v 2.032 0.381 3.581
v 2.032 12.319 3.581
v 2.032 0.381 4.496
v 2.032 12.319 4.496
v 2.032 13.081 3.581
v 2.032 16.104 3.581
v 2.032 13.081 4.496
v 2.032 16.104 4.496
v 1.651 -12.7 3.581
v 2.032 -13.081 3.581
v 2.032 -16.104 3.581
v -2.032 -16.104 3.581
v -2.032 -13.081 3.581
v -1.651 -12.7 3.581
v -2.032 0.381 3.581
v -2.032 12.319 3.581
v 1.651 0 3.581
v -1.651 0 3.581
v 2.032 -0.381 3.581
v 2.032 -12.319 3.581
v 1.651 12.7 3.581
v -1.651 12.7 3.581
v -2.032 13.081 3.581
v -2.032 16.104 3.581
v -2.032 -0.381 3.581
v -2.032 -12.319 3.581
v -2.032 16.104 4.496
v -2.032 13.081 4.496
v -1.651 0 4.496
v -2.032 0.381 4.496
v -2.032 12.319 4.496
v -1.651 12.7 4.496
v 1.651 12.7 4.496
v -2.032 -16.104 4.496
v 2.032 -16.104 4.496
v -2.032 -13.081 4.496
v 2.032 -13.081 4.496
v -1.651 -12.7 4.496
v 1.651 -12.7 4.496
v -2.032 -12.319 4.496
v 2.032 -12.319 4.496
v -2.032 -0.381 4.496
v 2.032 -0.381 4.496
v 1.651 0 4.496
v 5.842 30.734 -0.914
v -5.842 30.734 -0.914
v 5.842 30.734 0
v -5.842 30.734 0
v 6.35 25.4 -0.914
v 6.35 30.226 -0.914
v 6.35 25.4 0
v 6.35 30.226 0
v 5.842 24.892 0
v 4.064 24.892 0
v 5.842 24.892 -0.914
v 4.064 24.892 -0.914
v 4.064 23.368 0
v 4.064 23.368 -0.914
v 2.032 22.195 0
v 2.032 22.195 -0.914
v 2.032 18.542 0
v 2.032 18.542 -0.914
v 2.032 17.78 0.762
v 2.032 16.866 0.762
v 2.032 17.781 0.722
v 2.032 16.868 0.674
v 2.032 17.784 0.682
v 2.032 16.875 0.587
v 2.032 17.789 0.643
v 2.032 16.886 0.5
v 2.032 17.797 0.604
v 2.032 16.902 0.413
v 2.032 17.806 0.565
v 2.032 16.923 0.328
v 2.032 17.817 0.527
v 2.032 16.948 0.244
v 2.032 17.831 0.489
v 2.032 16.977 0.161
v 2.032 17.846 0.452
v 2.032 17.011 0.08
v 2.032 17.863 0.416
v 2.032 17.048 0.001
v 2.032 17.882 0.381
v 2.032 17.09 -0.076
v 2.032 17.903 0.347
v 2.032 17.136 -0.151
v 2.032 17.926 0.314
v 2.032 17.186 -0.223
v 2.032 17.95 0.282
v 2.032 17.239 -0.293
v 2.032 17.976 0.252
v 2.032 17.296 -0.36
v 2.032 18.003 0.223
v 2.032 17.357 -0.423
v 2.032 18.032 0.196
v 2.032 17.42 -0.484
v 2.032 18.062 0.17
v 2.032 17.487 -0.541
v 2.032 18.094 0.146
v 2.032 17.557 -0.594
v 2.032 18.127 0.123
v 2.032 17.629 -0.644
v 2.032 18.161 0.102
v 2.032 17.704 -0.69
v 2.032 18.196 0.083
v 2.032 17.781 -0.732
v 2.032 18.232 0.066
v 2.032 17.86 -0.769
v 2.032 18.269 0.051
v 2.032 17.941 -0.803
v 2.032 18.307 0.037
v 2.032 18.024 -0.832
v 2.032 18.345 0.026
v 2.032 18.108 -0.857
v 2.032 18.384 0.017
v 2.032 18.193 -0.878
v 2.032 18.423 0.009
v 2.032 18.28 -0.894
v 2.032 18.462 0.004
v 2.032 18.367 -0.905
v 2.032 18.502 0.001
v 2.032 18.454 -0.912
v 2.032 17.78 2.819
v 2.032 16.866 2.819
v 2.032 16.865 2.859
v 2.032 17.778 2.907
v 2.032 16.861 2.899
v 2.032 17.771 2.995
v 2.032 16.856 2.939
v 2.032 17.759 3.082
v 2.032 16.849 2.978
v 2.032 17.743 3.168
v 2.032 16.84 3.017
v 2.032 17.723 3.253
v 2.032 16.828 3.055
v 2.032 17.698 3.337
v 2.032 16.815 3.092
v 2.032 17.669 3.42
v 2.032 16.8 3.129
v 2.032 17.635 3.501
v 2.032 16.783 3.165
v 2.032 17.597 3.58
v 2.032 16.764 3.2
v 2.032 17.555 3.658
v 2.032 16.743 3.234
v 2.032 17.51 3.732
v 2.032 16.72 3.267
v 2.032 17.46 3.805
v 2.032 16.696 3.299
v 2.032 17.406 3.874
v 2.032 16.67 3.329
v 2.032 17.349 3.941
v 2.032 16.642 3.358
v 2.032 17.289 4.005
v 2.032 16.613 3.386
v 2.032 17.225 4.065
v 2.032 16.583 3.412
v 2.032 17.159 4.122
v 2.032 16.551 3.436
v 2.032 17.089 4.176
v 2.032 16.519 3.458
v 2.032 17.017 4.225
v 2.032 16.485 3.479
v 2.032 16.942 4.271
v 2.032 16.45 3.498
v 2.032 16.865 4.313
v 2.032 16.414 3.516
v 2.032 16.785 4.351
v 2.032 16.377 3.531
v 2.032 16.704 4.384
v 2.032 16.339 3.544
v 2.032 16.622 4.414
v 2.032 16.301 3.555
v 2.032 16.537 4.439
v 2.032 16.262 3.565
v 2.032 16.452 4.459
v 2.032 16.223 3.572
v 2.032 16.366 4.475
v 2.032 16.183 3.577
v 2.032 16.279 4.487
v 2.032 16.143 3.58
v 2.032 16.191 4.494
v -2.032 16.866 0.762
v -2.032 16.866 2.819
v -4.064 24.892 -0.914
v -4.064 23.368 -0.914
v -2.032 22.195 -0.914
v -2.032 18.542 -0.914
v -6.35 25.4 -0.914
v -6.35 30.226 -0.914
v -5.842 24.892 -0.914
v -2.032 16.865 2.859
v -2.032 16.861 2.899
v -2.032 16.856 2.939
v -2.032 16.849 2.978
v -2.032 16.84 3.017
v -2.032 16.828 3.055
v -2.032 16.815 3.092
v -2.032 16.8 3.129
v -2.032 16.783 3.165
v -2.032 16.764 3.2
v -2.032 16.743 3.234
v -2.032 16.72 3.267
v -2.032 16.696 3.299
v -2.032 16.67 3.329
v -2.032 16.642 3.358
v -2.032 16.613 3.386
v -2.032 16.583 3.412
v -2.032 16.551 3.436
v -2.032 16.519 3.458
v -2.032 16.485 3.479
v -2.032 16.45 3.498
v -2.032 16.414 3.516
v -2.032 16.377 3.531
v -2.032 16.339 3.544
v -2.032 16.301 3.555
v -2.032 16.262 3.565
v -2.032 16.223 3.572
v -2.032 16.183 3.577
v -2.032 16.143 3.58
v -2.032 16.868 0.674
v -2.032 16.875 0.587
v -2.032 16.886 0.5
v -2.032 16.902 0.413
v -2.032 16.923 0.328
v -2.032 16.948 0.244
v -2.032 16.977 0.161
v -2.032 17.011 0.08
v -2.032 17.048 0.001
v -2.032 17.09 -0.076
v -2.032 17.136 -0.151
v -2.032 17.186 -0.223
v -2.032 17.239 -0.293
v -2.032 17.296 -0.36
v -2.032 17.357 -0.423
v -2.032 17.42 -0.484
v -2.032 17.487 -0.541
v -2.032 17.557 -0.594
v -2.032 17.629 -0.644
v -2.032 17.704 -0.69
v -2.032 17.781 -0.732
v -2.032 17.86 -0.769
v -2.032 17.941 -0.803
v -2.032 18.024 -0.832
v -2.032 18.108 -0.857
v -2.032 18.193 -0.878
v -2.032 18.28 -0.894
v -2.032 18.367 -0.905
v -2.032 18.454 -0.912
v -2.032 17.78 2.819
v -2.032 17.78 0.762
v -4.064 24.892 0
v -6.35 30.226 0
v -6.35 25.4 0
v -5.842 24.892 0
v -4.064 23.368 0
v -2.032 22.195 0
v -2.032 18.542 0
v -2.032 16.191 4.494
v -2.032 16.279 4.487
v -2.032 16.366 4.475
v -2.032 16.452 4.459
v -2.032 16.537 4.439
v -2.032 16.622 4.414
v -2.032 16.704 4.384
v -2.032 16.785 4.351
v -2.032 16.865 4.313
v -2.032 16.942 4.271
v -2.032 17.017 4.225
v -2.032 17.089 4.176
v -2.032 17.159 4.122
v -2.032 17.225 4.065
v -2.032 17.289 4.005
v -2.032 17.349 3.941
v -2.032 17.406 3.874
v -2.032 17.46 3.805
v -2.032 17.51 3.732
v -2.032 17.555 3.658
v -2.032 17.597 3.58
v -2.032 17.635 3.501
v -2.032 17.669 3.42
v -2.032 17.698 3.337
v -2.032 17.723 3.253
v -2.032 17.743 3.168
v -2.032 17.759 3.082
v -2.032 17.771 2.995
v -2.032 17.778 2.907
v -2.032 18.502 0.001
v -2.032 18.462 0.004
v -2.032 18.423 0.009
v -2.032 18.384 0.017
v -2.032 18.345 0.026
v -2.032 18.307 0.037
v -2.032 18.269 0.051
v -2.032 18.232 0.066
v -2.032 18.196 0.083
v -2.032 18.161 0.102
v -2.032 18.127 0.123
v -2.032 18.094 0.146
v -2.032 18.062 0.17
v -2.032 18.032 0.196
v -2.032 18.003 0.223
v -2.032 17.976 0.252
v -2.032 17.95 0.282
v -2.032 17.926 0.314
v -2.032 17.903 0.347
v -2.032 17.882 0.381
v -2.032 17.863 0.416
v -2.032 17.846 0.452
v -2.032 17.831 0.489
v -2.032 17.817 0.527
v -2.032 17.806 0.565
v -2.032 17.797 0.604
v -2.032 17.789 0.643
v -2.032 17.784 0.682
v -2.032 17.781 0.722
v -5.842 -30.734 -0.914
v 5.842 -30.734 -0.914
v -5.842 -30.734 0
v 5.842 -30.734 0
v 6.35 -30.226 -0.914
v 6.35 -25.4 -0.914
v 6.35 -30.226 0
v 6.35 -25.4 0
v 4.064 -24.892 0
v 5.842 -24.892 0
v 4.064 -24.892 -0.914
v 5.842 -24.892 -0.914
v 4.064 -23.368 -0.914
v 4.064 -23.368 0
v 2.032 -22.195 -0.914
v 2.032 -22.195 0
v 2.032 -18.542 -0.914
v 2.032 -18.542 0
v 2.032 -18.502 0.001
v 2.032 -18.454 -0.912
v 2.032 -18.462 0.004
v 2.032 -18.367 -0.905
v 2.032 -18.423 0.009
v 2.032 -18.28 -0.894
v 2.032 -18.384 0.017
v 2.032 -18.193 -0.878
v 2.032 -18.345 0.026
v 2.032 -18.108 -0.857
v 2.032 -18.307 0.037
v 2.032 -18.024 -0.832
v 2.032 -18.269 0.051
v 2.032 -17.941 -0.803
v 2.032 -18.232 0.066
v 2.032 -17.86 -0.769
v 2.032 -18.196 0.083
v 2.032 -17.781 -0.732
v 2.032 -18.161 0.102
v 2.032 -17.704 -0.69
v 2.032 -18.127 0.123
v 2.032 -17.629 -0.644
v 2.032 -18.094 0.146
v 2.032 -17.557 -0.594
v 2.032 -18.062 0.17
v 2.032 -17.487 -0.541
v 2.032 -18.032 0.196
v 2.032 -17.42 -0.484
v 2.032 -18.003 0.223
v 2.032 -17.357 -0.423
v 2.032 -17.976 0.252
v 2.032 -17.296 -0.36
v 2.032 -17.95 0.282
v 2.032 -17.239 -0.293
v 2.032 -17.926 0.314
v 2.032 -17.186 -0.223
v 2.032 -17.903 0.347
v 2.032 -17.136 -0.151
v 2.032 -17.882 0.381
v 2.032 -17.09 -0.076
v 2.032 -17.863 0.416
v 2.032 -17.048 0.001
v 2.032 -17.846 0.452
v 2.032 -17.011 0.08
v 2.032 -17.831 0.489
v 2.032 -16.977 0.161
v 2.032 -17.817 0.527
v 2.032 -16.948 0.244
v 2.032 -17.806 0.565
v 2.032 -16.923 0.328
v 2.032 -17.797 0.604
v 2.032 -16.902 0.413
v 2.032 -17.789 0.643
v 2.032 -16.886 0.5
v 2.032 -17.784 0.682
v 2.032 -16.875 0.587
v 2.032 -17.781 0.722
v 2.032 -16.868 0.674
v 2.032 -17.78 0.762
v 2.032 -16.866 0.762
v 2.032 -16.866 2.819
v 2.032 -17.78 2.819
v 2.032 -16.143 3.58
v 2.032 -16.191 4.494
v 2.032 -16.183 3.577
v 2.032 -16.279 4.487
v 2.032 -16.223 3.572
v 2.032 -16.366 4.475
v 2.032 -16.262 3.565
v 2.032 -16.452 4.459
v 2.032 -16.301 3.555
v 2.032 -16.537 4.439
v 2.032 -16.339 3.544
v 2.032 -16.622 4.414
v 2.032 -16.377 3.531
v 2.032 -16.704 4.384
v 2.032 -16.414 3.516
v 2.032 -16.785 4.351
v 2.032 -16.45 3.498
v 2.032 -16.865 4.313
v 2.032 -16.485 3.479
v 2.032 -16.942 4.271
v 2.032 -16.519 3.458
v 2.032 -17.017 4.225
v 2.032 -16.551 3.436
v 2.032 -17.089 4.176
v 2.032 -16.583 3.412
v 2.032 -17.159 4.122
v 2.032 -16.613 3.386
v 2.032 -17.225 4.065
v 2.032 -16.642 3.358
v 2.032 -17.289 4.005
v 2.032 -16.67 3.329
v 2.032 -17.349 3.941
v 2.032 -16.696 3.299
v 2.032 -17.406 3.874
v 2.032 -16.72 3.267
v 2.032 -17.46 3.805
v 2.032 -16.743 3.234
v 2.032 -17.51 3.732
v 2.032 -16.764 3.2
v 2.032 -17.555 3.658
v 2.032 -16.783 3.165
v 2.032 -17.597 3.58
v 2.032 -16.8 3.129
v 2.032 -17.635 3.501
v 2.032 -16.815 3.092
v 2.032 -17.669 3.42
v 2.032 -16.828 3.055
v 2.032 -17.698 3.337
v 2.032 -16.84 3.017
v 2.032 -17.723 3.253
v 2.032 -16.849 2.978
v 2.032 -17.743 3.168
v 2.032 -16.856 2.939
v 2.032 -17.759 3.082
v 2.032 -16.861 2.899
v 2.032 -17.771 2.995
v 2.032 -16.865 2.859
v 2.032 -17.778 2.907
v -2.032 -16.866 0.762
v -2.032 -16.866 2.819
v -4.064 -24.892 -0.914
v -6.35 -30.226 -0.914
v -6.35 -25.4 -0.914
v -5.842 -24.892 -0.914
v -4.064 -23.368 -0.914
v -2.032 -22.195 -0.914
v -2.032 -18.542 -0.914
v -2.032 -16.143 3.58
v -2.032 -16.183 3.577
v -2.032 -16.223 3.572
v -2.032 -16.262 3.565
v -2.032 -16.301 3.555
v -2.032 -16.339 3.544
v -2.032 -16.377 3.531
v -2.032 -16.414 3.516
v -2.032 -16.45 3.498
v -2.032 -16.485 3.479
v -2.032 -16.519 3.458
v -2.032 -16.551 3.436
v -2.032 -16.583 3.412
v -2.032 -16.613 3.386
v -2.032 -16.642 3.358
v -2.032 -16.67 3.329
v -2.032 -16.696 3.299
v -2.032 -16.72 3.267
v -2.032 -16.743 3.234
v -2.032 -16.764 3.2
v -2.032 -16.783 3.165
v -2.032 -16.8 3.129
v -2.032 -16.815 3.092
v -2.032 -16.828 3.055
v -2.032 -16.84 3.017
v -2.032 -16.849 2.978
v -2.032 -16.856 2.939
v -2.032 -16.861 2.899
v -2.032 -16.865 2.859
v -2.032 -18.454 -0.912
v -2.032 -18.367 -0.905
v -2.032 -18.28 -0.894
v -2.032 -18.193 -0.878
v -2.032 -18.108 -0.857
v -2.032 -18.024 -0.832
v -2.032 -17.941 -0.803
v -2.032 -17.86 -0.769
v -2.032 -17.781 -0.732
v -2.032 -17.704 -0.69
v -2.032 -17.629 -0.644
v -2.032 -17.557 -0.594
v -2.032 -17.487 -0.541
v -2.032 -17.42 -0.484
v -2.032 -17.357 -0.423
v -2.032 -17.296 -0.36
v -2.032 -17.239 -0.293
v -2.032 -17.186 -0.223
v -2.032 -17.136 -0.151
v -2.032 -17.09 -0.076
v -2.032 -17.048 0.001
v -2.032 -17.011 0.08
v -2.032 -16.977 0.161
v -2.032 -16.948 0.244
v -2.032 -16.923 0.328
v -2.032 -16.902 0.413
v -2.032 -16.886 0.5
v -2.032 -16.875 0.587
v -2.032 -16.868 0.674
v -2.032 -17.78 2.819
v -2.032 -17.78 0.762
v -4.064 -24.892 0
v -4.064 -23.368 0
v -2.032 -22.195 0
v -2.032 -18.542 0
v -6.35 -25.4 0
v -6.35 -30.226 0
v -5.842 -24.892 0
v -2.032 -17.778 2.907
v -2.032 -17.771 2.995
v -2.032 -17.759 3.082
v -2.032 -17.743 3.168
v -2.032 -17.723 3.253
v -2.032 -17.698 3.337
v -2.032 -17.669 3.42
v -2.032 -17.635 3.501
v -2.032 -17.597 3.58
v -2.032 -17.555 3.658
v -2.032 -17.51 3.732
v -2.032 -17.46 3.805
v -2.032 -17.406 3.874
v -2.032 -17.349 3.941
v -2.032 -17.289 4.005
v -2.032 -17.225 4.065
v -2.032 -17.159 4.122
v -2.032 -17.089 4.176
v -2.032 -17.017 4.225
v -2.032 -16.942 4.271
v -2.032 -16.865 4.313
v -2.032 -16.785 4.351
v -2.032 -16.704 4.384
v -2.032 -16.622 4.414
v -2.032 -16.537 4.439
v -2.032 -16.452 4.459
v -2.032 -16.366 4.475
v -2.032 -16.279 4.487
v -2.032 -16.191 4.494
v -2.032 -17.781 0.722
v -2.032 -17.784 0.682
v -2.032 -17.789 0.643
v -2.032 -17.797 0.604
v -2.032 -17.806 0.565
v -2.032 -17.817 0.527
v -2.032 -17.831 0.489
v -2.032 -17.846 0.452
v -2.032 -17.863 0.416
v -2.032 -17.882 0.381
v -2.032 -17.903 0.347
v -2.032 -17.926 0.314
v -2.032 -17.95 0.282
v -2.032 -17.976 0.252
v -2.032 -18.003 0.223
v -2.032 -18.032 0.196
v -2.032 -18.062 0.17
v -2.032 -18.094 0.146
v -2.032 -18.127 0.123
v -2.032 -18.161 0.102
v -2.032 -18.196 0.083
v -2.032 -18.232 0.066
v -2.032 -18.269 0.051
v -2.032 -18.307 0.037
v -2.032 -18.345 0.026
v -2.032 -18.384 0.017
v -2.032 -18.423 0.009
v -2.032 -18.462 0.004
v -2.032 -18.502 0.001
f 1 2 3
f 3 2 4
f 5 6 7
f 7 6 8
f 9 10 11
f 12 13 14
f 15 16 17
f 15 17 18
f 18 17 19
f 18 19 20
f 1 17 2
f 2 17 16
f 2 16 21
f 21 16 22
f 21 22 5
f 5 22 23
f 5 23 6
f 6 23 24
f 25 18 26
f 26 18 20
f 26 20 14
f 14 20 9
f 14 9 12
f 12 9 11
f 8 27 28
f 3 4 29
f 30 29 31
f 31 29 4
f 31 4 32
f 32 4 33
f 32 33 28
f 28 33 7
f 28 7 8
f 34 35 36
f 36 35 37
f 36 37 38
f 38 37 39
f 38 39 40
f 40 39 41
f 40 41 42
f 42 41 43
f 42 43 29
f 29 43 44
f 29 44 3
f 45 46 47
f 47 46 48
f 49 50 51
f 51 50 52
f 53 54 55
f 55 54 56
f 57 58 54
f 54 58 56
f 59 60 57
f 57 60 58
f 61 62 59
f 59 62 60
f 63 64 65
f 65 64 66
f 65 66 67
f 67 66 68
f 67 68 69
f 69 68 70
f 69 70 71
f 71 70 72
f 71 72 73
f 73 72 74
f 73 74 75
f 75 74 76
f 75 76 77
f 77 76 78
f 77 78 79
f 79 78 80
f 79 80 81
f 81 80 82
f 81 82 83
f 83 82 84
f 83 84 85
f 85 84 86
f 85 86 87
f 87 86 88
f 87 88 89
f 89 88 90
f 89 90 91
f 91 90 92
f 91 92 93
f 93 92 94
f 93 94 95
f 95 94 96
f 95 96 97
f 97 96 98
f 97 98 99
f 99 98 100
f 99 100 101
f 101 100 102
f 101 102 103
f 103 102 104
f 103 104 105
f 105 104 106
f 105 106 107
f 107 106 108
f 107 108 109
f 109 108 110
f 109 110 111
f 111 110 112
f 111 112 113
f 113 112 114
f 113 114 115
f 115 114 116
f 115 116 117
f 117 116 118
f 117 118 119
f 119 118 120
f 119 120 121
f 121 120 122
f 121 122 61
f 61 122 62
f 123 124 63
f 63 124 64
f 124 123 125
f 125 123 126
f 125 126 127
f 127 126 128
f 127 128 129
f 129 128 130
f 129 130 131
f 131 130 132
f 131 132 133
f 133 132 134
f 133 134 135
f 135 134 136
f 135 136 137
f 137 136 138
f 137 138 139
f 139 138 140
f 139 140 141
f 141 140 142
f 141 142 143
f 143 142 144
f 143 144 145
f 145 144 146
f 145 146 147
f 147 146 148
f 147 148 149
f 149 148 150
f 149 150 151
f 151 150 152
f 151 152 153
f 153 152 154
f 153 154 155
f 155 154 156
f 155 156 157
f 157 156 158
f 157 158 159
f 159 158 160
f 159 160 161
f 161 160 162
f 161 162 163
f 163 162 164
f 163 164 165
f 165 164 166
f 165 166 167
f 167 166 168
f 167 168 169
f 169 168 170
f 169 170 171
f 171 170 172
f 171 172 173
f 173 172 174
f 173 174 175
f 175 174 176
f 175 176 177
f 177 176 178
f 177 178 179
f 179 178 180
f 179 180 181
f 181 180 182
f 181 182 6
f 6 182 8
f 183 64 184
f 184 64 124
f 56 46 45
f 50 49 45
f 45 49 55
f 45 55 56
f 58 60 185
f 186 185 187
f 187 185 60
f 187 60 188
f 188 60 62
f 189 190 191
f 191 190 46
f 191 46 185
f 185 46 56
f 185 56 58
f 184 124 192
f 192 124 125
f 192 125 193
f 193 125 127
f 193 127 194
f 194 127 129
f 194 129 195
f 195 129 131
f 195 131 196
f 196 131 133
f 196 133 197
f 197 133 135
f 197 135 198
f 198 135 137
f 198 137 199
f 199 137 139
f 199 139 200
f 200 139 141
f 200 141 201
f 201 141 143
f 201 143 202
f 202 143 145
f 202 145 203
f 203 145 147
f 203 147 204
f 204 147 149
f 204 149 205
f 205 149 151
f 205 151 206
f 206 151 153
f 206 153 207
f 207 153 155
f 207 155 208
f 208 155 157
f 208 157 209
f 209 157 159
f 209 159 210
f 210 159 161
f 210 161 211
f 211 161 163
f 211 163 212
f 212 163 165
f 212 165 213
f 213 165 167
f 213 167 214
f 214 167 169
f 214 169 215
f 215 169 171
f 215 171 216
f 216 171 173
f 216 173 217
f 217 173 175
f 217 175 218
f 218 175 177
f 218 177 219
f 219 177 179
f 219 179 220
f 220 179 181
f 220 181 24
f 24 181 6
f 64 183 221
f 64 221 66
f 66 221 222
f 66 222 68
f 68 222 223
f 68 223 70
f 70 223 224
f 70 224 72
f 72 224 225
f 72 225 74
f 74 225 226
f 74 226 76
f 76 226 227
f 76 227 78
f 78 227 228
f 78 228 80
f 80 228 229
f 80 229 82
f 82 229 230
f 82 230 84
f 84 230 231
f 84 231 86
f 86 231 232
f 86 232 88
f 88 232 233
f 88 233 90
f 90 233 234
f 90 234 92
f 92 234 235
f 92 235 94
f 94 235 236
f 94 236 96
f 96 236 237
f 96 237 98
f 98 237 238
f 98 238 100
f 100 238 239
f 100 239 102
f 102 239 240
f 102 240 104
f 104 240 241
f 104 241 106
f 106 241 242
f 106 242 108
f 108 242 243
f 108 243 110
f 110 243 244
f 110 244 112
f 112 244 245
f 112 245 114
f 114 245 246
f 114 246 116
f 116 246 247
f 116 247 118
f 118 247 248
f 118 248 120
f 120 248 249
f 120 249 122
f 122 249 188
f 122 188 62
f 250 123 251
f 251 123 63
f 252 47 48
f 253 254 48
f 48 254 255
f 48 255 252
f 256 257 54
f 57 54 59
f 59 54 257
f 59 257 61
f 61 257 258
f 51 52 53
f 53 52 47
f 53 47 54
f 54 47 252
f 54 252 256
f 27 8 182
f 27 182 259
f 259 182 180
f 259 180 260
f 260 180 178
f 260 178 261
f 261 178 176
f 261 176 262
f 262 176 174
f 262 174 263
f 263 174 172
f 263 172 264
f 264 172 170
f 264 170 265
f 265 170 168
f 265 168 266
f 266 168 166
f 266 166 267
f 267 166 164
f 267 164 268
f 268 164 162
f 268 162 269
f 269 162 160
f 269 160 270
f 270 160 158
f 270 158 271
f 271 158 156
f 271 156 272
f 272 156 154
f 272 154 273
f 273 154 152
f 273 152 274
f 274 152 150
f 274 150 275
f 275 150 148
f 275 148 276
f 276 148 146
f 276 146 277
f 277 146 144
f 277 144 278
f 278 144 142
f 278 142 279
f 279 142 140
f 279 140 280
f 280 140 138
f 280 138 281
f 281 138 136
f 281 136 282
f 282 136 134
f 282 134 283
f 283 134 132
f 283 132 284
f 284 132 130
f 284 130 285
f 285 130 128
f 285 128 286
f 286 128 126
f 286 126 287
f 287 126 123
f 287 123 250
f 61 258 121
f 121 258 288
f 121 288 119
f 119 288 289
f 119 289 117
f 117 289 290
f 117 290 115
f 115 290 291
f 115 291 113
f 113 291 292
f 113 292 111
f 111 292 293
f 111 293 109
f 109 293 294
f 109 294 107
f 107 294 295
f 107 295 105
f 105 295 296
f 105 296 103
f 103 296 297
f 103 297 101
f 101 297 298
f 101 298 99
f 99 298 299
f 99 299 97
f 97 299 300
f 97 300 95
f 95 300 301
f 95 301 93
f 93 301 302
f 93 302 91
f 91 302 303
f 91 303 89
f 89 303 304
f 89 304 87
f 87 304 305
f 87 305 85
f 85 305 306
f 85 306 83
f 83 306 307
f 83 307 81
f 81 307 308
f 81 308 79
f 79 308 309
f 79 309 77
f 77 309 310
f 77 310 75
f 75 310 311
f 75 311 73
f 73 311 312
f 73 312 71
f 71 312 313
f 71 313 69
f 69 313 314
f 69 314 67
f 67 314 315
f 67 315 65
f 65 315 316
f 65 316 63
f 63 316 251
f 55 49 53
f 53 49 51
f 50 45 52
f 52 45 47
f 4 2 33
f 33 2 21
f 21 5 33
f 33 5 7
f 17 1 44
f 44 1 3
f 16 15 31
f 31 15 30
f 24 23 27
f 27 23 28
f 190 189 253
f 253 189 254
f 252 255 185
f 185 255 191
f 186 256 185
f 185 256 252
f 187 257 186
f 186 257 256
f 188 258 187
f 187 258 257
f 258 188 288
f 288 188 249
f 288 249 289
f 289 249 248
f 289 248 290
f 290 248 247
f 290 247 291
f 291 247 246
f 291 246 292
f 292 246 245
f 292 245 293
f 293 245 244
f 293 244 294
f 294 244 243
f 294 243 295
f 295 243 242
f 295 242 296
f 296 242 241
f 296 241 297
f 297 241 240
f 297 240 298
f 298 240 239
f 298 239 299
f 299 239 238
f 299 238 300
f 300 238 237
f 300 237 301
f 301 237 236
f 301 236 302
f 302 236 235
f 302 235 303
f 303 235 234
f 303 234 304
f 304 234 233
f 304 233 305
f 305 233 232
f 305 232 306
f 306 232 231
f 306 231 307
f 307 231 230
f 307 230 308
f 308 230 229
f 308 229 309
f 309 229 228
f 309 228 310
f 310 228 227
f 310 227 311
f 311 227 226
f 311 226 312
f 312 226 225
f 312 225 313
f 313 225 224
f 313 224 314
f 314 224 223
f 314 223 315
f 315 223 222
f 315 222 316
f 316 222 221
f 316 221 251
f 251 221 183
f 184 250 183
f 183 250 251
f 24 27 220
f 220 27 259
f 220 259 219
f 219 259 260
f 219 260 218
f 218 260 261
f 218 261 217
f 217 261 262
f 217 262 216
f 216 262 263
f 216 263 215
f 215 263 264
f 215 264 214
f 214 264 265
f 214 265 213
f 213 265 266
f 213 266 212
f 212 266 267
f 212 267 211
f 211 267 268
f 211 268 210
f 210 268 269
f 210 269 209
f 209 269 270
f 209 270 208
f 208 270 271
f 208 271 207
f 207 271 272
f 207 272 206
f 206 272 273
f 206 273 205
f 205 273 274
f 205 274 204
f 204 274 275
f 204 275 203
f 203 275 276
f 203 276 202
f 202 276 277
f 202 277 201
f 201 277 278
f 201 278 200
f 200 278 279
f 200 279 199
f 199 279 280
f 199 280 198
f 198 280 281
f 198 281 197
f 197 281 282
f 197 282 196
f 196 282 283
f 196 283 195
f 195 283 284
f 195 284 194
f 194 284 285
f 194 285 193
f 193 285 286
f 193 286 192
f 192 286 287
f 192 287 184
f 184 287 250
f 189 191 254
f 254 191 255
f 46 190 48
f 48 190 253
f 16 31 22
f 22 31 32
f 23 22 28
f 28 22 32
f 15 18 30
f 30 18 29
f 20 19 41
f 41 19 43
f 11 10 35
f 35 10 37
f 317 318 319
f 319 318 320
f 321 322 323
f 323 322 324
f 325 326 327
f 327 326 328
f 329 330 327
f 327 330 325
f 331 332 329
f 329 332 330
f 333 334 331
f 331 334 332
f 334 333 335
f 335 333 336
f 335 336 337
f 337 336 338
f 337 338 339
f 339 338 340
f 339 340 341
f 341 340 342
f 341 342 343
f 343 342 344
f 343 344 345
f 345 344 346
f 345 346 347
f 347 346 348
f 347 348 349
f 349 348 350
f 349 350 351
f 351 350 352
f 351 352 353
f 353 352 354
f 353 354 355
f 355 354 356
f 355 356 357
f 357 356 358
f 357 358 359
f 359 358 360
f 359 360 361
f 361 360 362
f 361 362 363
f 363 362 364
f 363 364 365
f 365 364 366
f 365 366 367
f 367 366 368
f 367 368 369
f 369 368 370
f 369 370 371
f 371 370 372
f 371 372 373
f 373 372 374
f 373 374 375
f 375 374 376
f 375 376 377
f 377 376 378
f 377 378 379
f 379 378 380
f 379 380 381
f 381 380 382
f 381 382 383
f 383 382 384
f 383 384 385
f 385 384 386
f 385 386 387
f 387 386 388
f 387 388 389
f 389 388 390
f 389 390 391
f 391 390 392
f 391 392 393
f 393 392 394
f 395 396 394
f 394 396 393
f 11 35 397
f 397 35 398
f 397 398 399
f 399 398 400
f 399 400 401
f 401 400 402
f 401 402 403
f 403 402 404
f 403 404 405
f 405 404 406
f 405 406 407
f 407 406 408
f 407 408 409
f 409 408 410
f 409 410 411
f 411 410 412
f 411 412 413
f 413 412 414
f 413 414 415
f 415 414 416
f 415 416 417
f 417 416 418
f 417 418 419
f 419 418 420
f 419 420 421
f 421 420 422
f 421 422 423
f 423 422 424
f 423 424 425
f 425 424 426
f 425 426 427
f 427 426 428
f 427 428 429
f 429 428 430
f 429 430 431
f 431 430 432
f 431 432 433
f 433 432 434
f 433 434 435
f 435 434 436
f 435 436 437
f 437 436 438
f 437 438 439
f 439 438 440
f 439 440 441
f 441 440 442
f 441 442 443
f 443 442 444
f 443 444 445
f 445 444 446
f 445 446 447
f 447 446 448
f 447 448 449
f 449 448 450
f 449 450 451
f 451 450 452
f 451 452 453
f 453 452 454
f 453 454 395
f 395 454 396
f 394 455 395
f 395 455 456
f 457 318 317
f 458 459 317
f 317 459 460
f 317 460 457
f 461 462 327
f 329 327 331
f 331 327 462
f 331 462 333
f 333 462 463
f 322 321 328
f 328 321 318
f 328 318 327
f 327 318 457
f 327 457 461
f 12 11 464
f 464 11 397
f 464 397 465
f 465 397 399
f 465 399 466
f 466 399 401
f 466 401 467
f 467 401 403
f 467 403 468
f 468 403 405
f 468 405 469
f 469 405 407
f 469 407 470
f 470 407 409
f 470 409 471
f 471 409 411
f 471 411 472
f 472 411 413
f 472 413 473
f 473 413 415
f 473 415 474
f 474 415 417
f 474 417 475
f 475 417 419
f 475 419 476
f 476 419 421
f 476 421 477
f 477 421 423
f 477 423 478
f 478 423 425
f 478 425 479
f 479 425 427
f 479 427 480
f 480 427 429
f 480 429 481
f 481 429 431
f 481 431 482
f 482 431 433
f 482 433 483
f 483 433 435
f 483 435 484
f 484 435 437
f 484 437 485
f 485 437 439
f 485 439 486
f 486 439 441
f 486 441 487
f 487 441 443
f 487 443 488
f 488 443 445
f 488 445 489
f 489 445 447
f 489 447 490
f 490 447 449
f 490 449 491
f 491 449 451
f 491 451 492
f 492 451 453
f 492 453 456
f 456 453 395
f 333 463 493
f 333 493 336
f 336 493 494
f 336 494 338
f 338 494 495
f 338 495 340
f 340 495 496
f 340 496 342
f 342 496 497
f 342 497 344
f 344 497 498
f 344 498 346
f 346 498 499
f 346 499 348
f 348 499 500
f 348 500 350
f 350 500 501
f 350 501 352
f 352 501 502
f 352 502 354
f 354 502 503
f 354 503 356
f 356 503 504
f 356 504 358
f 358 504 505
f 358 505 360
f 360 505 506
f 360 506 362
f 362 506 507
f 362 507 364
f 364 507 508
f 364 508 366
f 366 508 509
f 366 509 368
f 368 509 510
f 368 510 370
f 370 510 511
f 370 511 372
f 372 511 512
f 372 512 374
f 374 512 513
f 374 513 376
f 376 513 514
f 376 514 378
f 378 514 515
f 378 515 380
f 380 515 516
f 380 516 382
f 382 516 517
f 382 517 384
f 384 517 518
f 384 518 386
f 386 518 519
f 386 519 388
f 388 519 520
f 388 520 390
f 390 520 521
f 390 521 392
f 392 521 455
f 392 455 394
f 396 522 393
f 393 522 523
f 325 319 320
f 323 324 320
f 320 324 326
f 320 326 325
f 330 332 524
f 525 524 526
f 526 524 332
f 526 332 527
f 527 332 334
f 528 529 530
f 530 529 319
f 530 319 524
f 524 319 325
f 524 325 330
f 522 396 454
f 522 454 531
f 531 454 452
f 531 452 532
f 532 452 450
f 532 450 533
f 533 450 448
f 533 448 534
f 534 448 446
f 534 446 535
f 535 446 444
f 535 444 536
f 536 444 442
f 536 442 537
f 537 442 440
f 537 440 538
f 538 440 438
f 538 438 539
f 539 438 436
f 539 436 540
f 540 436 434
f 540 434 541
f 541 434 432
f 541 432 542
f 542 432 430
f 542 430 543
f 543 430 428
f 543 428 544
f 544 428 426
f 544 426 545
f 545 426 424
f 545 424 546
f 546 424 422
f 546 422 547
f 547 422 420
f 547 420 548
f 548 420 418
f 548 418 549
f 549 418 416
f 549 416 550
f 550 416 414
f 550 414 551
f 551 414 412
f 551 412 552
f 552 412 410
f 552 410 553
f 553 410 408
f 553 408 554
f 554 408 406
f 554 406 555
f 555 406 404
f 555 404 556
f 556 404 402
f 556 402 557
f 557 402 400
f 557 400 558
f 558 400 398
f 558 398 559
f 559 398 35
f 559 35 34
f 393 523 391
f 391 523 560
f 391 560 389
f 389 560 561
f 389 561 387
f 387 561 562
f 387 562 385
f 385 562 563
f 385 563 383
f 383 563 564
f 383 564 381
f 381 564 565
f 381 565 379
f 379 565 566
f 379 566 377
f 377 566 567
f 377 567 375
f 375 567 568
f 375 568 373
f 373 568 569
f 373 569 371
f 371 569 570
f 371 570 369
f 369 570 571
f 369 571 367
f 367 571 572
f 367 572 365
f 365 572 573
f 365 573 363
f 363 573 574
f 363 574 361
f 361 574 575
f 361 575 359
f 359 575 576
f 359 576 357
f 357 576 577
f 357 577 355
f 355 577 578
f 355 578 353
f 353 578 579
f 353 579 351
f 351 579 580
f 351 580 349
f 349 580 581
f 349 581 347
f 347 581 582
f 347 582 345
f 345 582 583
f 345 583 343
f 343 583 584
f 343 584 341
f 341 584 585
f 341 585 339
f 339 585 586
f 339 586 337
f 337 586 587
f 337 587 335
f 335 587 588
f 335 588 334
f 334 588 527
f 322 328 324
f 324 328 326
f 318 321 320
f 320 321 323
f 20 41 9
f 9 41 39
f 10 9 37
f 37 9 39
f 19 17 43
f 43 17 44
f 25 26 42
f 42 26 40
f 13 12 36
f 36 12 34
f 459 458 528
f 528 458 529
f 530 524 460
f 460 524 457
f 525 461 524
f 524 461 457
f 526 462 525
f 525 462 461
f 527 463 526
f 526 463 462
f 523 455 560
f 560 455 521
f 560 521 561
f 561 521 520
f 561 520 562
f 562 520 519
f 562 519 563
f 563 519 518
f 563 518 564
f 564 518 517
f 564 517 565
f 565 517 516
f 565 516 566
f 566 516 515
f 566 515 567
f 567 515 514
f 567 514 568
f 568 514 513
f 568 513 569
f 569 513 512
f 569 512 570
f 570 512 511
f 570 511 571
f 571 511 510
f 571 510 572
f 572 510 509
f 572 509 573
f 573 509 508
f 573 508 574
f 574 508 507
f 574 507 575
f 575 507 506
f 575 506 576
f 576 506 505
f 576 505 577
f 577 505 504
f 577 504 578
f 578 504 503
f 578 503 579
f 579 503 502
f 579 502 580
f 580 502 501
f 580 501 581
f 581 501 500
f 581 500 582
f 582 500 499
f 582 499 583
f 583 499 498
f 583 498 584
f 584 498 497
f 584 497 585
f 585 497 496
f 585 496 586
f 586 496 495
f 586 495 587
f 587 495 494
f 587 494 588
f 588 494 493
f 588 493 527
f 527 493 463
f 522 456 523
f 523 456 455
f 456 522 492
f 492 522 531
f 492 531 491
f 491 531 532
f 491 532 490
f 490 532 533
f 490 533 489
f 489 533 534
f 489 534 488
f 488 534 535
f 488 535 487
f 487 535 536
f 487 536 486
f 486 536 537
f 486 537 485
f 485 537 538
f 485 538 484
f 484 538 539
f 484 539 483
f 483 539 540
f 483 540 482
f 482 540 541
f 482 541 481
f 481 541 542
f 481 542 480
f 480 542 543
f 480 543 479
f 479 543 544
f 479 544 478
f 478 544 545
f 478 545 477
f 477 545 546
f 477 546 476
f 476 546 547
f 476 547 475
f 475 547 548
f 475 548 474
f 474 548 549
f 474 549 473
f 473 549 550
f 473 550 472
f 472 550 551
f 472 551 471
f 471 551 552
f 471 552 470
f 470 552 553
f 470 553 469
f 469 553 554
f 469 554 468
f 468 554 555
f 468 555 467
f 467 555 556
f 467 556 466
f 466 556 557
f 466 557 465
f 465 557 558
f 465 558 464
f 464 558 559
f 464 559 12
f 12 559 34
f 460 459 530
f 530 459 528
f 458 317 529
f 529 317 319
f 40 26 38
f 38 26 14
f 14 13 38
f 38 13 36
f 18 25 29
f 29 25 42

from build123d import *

# Parameters (mm, degrees)
BOSS_EXTRUDE1_DEPTH        = 25.4
SKETCH13_W                 = 4.4958
SKETCH13_H                 = 17.78
CUT_EXTRUDE2_DEPTH         = 41.37401709
CONVERT_SOLID1_DEPTH       = 6.35
CONVERT_SOLID1_2_DEPTH     = 2.032
CONVERT_SOLID1_START       = 2.032
CONVERT_SOLID1_3_OUTLINE_W = 5.842
CONVERT_SOLID1_3_OUTLINE_H = 0.9144
CONVERT_SOLID1_3_DEPTH     = 4.318
CONVERT_SOLID1_START_2     = -0.9144
CONVERT_SOLID1_4_DEPTH     = 0.9144
CHAMFER1_SIZE              = 0.508
CUT_EXTRUDE3_DEPTH         = 32.703524625


with BuildPart() as part:
    # Sketch3 → Boss-Extrude1 (new body)
    with BuildSketch(Plane.XY):
        Polygon((6.35, 24.892), (6.35, 30.734), (0, 30.734), (0, 0), (2.032, 0), (2.032, 22.194824253), (4.064, 23.368), (4.064, 24.892), align=None)
    extrude(amount=BOSS_EXTRUDE1_DEPTH)

    # Sketch13 → Cut-Extrude2 (cut, through all)
    with BuildSketch(Plane(origin=(0, 0, 0), x_dir=(0, 0, -1), z_dir=(1, 0, 0))):
        with Locations((-2.2479, 8.89)):
            Rectangle(SKETCH13_W, SKETCH13_H)
    extrude(amount=CUT_EXTRUDE2_DEPTH, mode=Mode.SUBTRACT)

    # Convert-Solid1: read off the stored shape, not the designer's step
    # Convert-Solid1 outline → Convert-Solid1 (cut)
    with BuildSketch(Plane.YZ):
        with BuildLine():
            Line((30.734, 0), (30.734, 25.4))
            Line((30.734, 25.4), (0, 25.4))
            Line((0, 25.4), (0, 4.4958))
            Line((0, 4.4958), (17.78, 4.4958))
            Line((17.78, 4.4958), (17.78, 0.762))
            ThreePointArc((17.78, 0.762), (18.003184633, 0.223184633), (18.542, 0))
            Line((18.542, 0), (30.734, 0))
        make_face()
    extrude(amount=CONVERT_SOLID1_DEPTH, mode=Mode.SUBTRACT)

    # Convert-Solid1 2 outline → Convert-Solid1 2 (add)
    with BuildSketch(Plane.YZ):
        with BuildLine():
            Line((30.734, -0.9144), (30.734, 0))
            Line((30.734, 0), (17.78, 0))
            Line((17.78, 0), (17.78, 2.8194))
            ThreePointArc((17.78, 2.8194), (17.288993808, 4.004793808), (16.1036, 4.4958))
            Line((16.1036, 4.4958), (0, 4.4958))
            Line((0, 4.4958), (0, 3.5814))
            Line((0, 3.5814), (16.1036, 3.5814))
            ThreePointArc((16.1036, 3.5814), (16.642415367, 3.358215367), (16.8656, 2.8194))
            Line((16.8656, 2.8194), (16.8656, 0.762))
            ThreePointArc((16.8656, 0.762), (17.356606192, -0.423393808), (18.542, -0.9144))
            Line((18.542, -0.9144), (30.734, -0.9144))
        make_face()
    extrude(amount=CONVERT_SOLID1_2_DEPTH)

    # Convert-Solid1 3 outline → Convert-Solid1 3 (add)
    with BuildSketch(Plane.YZ.offset(CONVERT_SOLID1_START)):
        with Locations((27.813, -0.4572)):
            Rectangle(CONVERT_SOLID1_3_OUTLINE_W, CONVERT_SOLID1_3_OUTLINE_H)
    extrude(amount=CONVERT_SOLID1_3_DEPTH)

    # Convert-Solid1 4 outline → Convert-Solid1 4 (add)
    with BuildSketch(Plane.XY.offset(CONVERT_SOLID1_START_2)):
        Polygon((4.064, 23.368), (4.064, 24.892), (2.032, 24.892), (2.032, 22.194824253), align=None)
    extrude(amount=CONVERT_SOLID1_4_DEPTH)

    # Chamfer1
    chamfer1_edges = [part.edges().sort_by_distance(p)[0] for p in [
        (6.35, 24.892, -0.4572),
        (6.35, 30.734, -0.4572),
    ]]
    chamfer(chamfer1_edges, length=CHAMFER1_SIZE)

    # Sketch14 → Cut-Extrude3 (cut, through all)
    with BuildSketch(Plane.XY):
        Polygon((5.08, 16.129), (1.651, 12.7), (5.08, 9.271), align=None)
        Polygon((1.651, 0), (5.08, 3.429), (5.08, -3.429), align=None)
    extrude(amount=CUT_EXTRUDE3_DEPTH, mode=Mode.SUBTRACT)

    # Mirror1: part across plane


with BuildPart() as part_1:
    add(part.part)
    add(part.part.mirror(Plane(origin=(0, 0, 0), x_dir=(0, 0, 1), z_dir=(1, 0, 0))))

    # Mirror2: part across face


with BuildPart() as part_2:
    add(part_1.part)
    add(part_1.part.mirror(Plane(origin=(0, 0, 4.0386), x_dir=(0, 0, 1), z_dir=(0, -1, 0))))


solid = part_2.part
